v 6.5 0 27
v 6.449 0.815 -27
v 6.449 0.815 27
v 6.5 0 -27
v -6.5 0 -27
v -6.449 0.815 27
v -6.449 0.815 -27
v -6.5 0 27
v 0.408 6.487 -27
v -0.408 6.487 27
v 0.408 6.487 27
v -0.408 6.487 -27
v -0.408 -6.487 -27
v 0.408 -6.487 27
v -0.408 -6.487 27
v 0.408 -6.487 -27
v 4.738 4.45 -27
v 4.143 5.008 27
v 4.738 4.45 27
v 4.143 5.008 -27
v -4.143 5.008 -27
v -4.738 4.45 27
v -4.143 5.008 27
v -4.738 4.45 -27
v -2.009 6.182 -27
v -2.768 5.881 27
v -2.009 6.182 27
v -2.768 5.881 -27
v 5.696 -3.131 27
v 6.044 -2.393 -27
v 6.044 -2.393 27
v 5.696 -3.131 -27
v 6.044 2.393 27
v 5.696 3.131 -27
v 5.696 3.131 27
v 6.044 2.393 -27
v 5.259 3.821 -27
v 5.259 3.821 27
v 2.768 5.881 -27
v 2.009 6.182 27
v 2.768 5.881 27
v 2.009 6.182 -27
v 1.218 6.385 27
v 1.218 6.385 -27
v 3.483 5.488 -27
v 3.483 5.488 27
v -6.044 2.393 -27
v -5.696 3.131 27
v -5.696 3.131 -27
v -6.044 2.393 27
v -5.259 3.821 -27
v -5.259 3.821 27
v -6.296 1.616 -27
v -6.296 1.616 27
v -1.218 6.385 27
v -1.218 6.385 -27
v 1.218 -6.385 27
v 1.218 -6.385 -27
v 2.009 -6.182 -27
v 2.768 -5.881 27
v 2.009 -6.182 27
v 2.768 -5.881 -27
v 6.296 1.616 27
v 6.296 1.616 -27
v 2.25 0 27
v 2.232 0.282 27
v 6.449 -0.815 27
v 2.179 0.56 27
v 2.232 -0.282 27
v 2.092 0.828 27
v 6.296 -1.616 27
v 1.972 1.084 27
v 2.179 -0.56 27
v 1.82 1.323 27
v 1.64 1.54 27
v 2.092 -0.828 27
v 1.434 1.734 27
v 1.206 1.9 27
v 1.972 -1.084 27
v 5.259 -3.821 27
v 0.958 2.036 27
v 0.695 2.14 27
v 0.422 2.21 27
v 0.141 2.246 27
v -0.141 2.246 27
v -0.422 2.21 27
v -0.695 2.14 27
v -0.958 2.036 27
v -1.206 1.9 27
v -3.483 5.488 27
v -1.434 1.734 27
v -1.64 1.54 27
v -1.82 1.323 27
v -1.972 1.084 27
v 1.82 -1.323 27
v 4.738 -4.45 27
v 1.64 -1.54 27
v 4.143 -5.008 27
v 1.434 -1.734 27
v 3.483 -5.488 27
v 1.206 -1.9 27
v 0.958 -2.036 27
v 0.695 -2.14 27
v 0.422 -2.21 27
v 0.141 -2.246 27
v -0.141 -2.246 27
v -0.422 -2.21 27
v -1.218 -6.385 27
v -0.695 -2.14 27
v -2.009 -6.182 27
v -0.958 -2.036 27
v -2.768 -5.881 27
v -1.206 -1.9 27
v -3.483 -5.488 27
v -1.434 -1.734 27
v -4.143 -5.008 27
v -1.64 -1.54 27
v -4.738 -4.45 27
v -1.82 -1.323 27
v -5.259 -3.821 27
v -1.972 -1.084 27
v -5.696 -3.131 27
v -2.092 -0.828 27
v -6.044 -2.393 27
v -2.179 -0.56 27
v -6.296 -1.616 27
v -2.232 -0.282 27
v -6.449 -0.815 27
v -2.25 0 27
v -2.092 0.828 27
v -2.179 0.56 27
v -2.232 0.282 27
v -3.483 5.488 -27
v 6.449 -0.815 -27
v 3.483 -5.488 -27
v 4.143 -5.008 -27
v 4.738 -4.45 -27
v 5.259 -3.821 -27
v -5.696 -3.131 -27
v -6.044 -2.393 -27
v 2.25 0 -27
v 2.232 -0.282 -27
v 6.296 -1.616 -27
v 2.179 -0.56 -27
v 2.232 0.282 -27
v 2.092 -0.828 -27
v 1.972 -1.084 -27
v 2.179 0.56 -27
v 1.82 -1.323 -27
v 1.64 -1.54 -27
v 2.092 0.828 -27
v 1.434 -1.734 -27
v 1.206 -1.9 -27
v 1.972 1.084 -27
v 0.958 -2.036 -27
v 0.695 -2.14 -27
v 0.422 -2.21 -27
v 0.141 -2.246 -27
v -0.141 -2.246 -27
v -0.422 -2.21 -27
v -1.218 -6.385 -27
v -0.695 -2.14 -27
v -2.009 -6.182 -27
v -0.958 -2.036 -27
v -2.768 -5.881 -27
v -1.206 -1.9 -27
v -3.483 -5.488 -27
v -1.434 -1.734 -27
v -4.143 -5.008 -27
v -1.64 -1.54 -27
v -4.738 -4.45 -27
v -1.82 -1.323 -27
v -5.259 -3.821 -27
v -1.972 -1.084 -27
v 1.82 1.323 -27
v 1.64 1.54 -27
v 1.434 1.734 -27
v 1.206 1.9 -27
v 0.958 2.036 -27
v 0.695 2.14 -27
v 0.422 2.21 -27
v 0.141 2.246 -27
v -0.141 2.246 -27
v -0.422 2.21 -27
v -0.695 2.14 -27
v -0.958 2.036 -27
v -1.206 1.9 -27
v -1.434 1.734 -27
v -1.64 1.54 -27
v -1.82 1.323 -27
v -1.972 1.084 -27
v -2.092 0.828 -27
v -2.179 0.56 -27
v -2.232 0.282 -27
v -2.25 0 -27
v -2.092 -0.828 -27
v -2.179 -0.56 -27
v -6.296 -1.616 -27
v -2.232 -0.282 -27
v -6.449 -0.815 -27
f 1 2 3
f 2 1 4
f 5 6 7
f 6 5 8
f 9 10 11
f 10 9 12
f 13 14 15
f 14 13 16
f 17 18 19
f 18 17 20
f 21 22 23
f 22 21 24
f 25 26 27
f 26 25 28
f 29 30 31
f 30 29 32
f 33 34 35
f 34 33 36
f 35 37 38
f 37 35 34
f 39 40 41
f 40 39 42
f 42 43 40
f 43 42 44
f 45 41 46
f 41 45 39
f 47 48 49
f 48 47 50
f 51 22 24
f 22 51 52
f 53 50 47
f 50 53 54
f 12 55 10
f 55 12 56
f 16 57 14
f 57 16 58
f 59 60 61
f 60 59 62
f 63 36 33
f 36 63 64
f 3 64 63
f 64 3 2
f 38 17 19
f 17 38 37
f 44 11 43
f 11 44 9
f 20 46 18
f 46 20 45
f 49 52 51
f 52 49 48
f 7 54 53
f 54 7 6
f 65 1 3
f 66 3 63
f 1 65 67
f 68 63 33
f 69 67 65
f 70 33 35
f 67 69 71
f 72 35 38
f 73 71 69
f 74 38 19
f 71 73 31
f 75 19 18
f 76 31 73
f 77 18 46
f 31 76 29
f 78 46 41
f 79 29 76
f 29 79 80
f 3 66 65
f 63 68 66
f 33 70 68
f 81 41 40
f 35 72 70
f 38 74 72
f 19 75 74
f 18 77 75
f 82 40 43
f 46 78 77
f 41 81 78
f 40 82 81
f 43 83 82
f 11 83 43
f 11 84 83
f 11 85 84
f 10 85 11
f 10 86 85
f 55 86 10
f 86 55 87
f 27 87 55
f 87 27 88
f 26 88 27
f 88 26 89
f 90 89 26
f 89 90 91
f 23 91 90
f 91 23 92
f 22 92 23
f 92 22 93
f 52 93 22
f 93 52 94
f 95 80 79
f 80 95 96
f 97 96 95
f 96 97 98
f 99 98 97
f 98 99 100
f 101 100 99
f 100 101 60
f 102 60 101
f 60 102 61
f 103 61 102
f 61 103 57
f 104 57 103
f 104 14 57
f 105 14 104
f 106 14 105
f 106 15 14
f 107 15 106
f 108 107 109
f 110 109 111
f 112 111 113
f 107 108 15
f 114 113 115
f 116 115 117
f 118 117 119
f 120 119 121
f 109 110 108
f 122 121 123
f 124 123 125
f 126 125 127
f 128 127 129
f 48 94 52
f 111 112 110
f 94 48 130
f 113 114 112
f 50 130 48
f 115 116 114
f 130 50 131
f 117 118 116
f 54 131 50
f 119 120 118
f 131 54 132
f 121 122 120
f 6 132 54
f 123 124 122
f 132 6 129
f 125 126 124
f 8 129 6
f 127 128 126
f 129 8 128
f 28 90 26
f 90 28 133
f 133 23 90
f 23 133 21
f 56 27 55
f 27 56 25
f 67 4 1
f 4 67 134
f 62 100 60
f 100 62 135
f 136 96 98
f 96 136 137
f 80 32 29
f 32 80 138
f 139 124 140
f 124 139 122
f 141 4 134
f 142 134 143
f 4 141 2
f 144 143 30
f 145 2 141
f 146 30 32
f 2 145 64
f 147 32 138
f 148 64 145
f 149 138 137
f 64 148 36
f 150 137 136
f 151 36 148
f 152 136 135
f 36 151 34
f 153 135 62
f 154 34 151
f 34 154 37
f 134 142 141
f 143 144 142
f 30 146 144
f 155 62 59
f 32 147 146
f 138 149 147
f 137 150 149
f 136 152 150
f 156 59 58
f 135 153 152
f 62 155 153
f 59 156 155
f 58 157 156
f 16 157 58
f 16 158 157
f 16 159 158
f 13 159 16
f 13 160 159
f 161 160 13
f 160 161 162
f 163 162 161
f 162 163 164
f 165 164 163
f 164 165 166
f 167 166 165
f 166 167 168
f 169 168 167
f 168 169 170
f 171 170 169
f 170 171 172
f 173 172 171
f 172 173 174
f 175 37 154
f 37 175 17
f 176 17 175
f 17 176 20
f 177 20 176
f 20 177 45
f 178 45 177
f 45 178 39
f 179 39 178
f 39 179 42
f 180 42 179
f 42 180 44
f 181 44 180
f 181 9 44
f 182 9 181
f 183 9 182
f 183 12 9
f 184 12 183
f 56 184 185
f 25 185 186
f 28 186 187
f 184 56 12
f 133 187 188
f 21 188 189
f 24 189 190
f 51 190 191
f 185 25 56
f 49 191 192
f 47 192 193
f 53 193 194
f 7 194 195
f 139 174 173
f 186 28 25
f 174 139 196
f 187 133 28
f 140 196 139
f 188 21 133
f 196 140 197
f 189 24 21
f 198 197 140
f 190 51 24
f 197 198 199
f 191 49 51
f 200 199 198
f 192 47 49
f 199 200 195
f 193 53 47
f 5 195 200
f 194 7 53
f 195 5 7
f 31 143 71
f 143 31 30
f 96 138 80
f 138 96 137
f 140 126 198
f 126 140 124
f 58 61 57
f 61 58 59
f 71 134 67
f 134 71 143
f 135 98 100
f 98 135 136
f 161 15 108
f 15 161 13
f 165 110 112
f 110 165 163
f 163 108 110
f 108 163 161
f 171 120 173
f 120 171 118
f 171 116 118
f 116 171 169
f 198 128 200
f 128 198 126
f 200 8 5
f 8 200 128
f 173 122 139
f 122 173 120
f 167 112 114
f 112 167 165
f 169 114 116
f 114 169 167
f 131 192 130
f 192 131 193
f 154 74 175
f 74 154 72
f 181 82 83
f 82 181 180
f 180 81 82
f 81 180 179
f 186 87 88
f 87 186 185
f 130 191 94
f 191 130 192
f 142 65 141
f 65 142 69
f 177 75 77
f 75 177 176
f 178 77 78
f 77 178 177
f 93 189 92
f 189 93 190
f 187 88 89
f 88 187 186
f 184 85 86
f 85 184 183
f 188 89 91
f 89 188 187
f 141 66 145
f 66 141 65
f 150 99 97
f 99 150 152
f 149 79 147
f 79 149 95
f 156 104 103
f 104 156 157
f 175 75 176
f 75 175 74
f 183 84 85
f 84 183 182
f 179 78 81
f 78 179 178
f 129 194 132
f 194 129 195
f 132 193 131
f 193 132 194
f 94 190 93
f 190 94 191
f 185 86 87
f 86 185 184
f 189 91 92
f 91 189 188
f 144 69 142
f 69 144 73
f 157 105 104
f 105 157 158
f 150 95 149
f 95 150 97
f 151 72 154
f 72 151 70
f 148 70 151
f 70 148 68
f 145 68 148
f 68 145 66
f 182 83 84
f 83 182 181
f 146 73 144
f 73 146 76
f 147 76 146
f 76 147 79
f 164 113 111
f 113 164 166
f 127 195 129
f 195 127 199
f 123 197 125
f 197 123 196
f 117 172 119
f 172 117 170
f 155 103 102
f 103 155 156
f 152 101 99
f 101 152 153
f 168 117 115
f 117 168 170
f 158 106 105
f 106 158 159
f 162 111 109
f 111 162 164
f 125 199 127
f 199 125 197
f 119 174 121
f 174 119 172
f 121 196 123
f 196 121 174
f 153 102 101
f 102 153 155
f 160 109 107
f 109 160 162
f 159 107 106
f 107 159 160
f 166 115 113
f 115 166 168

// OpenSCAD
$fn = 50;


difference() {
	union() {
		translate(v = [0, 0, -27.0000000000]) {
			cylinder(h = 54, r = 6.5000000000);
		}
	}
	union() {
		translate(v = [0, 0, -100.0000000000]) {
			cylinder(h = 200, r = 2.2500000000);
		}
	}
}
